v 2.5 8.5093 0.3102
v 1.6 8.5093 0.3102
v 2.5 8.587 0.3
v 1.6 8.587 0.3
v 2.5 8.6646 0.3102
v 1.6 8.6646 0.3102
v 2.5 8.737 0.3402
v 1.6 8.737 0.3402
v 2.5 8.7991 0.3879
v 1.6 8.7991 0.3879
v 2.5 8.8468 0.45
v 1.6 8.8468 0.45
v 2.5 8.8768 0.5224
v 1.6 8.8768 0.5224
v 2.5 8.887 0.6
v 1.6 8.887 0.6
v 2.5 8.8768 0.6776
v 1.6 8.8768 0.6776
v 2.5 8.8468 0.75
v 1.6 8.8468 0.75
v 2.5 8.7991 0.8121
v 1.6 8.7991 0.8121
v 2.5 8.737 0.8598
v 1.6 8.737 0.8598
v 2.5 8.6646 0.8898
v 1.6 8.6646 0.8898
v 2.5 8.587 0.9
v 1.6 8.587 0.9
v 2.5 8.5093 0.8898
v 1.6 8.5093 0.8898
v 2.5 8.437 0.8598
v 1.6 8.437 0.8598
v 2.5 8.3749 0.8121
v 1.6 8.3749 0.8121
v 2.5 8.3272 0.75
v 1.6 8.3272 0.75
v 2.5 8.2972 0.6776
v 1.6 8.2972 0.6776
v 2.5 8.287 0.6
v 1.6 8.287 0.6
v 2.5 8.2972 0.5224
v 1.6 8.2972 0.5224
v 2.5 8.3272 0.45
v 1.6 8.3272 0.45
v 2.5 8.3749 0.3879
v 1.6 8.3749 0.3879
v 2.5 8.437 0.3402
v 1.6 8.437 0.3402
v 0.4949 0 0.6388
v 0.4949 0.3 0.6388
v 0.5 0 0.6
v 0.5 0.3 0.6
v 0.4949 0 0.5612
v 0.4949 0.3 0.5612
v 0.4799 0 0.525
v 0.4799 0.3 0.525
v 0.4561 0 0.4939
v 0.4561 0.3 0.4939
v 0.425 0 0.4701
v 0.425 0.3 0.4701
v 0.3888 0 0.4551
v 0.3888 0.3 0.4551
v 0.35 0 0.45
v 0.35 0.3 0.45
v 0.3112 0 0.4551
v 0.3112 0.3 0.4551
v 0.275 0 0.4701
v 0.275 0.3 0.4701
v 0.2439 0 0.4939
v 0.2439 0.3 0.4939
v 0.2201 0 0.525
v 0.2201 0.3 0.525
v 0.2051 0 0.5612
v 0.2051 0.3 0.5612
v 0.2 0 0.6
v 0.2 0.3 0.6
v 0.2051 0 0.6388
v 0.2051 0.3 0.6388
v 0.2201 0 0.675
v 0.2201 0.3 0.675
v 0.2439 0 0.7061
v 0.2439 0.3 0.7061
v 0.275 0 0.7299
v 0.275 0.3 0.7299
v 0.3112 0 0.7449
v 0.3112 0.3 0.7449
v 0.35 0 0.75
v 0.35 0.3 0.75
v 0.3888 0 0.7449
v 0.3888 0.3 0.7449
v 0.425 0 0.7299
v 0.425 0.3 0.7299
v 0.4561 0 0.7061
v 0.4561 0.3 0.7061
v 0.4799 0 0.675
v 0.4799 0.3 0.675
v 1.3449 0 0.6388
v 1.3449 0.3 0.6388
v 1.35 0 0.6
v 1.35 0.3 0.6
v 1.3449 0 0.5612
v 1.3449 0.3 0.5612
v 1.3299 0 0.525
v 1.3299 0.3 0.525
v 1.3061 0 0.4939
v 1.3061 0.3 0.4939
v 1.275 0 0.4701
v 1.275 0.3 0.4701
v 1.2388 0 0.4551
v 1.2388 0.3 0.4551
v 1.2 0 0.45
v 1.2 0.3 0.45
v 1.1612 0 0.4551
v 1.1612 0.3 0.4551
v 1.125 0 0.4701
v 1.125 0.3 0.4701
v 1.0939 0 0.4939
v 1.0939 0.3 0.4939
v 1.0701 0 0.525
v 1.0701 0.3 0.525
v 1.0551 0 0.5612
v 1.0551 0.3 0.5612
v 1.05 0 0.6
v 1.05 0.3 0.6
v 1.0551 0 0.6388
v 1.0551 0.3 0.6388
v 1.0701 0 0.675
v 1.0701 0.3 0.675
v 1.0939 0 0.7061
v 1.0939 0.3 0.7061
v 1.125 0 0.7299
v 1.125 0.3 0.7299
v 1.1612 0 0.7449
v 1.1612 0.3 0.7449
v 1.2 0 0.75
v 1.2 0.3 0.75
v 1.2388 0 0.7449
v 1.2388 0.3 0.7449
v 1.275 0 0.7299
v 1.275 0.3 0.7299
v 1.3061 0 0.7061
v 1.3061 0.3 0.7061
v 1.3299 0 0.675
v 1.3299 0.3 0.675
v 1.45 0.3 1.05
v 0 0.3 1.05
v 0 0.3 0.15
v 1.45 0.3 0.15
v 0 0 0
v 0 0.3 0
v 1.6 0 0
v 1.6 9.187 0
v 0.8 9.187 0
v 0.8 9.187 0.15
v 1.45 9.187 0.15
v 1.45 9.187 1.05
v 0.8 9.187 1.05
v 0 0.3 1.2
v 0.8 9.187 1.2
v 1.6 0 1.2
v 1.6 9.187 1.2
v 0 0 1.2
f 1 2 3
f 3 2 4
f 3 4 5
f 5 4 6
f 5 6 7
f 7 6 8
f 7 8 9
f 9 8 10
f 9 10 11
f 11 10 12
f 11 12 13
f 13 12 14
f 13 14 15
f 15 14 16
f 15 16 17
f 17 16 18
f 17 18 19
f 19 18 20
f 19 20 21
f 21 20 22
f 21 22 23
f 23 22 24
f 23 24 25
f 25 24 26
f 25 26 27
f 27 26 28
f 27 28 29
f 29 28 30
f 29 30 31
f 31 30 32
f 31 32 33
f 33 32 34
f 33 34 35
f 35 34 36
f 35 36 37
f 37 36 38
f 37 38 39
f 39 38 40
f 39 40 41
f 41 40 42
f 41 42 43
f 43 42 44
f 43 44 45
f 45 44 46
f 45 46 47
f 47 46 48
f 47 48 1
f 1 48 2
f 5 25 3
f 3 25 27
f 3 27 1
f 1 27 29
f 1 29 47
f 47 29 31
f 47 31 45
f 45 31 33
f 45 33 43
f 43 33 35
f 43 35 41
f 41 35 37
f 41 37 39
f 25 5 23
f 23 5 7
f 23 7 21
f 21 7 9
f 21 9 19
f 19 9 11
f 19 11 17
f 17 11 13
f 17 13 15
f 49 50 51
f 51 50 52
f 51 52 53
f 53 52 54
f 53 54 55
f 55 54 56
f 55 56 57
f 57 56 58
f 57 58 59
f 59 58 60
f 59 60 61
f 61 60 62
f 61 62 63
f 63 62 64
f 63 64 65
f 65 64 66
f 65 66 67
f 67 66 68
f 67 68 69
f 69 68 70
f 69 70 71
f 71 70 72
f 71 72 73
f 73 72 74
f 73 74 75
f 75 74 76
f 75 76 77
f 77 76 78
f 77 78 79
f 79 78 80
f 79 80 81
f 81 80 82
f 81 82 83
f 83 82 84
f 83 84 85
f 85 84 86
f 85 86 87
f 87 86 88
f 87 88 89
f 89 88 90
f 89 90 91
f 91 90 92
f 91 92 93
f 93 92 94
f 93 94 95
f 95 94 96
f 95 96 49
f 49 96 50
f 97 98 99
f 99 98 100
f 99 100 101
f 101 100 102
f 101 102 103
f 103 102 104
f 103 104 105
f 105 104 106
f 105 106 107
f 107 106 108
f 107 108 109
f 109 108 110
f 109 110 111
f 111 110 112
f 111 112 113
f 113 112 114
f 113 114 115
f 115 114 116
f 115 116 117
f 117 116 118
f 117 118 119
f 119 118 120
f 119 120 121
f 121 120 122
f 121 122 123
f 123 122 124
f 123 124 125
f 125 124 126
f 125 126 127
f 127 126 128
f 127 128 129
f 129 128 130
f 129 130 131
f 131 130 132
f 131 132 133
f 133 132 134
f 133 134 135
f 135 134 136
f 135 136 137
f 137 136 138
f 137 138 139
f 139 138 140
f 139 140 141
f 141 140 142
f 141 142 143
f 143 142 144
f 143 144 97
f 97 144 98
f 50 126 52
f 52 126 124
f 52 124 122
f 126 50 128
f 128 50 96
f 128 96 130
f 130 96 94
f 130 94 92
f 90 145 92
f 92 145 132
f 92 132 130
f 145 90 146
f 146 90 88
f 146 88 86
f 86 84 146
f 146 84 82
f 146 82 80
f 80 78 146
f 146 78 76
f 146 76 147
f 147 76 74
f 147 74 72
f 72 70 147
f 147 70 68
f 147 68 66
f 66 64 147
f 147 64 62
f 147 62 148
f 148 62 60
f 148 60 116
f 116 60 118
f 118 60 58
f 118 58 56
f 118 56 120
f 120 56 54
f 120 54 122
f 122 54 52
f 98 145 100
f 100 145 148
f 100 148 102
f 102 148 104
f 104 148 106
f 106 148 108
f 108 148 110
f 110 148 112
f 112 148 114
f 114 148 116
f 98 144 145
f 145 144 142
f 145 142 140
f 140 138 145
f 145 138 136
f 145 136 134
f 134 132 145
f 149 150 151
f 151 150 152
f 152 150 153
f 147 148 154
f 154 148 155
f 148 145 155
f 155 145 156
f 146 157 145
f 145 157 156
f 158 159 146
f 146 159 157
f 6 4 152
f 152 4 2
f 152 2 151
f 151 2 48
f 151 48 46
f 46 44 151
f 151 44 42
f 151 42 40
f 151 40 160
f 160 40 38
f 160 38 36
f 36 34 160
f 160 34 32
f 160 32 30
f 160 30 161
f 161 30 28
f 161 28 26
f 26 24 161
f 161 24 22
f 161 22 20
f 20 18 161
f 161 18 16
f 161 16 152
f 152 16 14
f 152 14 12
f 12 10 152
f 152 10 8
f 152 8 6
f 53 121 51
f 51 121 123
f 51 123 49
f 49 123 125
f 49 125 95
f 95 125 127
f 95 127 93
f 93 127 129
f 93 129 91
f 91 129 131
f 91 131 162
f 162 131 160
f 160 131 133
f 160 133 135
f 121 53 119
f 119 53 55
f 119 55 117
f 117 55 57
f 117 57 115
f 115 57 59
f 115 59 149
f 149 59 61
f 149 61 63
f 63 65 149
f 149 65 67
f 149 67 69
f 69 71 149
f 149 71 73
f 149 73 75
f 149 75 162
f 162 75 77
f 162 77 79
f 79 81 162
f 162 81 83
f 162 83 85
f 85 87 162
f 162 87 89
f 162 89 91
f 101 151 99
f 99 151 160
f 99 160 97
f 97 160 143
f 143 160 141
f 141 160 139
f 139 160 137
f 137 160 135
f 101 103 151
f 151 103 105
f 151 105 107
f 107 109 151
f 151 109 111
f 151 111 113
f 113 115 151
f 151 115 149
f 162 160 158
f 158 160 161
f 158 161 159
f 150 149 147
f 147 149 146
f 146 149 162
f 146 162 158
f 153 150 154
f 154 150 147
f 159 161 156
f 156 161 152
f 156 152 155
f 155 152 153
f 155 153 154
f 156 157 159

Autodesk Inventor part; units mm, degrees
ref_plane "YZ Plane" through (0, 0, 0) normal (1, 0, 0) x (0, 1, 0)
ref_plane "XZ Plane" through (0, 0, 0) normal (0, 1, 0) x (-1, 0, 0)
ref_plane "XY Plane" through (0, 0, 0) normal (0, 0, 1) x (1, 0, 0)
sketch "Boceto1" plane through (0, 0, 0) normal (0, 0, 1) x (1, 0, 0)
  line L0 (0, 0) -> (1.6, 0)
  line L1 (1.6, 0) -> (1.6, 0.3)
  line L2 (0, 0.3) -> (0, 0)
  line L3 (1.6, 0.3) -> (1.6, 8.287)
  line L4 (1.6, 8.287) -> (2.5, 8.287)
  line L5 (2.5, 8.287) -> (2.5, 8.887)
  line L6 (2.5, 8.887) -> (1.6, 8.887)
  line L7 (1.6, 8.887) -> (1.6, 9.187)
  line L8 (1.6, 9.187) -> (0.8, 9.187)
  line L9 (0.8, 9.187) -> (0, 0.3)
  line L10 (1.6, 8.887) -> (1.6, 8.287)
extrude "Extrusión1" add sketch "Boceto1" along normal blind 0.15 contours L2 L9 L8 L7 L10 L3 L1 L0
sketch "Boceto2" plane through (1.6, 0, 0) normal (1, 0, 0) x (0, 0, -1)
  line L0 (0, 0.3) -> (0, 9.187)
  line L1 (-1.2, 9.187) -> (-1.2, 0.3)
  line L2 (-1.2, 0.3) -> (0, 0.3)
  line L3 (-1.05, 0.3) -> (-1.05, 9.187)
  line L4 (-0.15, 0.3) -> (-0.15, 9.187)
  line L5 (-1.2, 0) -> (0, 0)
  line L6 (-1.2, 0) -> (-1.2, 0.3)
  line L7 (0, 0) -> (0, 0.3)
  line L8 (0, 9.187) -> (-1.2, 9.187)
  point P0 (0, 0)
extrude "Extrusión2" add sketch "Boceto2" against normal blind 0.15 contours L7 L5 L6 L2 | L2 L3 L8 L4 | L2 L1 L8 L3
sketch "Boceto3" plane through (1.6, 0, 1.2) normal (0, 0, 1) x (1, 0, 0)
  line L0 (-1.6, 0) -> (0, 0)
  line L1 (0, 0) -> (0, 0.3)
  line L2 (-1.6, 0.3) -> (-1.6, 0)
  line L3 (0, 0.3) -> (0, 8.287)
  line L4 (0, 8.287) -> (0.9, 8.287)
  line L5 (0.9, 8.287) -> (0.9, 8.887)
  line L6 (0.9, 8.887) -> (0, 8.887)
  line L7 (0, 8.887) -> (0, 9.187)
  line L8 (0, 9.187) -> (-0.8, 9.187)
  line L9 (-0.8, 9.187) -> (-1.6, 0.3)
  line L10 (0, 8.887) -> (0, 8.287)
  line L11 (0, 0) -> (-0.15, 0) projected
  point P0 (-1.6, 0)
extrude "Extrusión3" add sketch "Boceto3" against normal blind 0.15 contours L2 L9 L8 L7 L10 L3 L1 L0
sketch "Boceto4" plane through (1.45, 0, 0) normal (-1, 0, 0) x (0, 0, 1)
  line L0 (1.2, 0.3) -> (1.2, 9.187)
  line L1 (0, 9.187) -> (0, 0.3)
  line L2 (0, 0.3) -> (1.2, 0.3)
  line L3 (0.15, 0.3) -> (0.15, 9.187)
  line L4 (1.05, 0.3) -> (1.05, 9.187)
  line L5 (0, 0) -> (1.2, 0)
  line L6 (0, 0) -> (0, 0.3)
  line L7 (1.2, 0) -> (1.2, 0.3)
  line L8 (1.2, 9.187) -> (0, 9.187)
  point P0 (0, 0)
extrude "Extrusión4" add sketch "Boceto4" along normal blind 1.45 contours L7 L5 L6 L2
sketch "Boceto5" plane through (1.45, 0.3, 1.05) normal (0, 1, 0) x (1, 0, 0)
  line L0 (-1.45, 1.05) -> (0.15, 1.05)
  line L1 (0.15, 1.05) -> (0.15, -0.15)
  line L2 (0.15, -0.15) -> (-1.45, -0.15)
  line L3 (-1.45, -0.15) -> (-1.45, 1.05)
  circle A0 centre (-1.1, 0.45) radius 0.15
  circle A1 centre (-0.25, 0.45) radius 0.15
  line L4 (0.15, 0.15) -> (1.05, 0.15)
  line L5 (1.05, 0.15) -> (1.05, 0.75)
  line L6 (1.05, 0.75) -> (0.15, 0.75)
  line L7 (0, 1.05) -> (0, -0.15)
  line L8 (0.15, 1.05) -> (0.15, -0.15) projected
  point P0 (-1.45, 1.05)
extrude "Extrusión5" cut sketch "Boceto5" against normal blind 1.45 contours A0 | A1
sketch "Boceto6" plane through (1.6, 0, 0) normal (1, 0, 0) x (0, 0, -1)
  line L0 (0, 0) -> (-1.2, 0) projected
  line L1 (0, 0) -> (0, 9.187) projected
  line L2 (0, 9.187) -> (-1.2, 9.187) projected
  line L3 (-1.2, 9.187) -> (-1.2, 0) projected
  line L4 (0, 0.3) -> (0, 9.187)
  line L5 (-1.2, 9.187) -> (-1.2, 0.3)
  line L6 (-1.2, 0) -> (0, 0)
  line L7 (-1.2, 0) -> (-1.2, 0.3)
  line L8 (0, 0) -> (0, 0.3)
  line L9 (0, 9.187) -> (-1.2, 9.187)
  circle A0 centre (-0.6, 8.587) radius 0.3
extrude "Extrusión6" add sketch "Boceto6" along normal blind 0.9 contours A0
properties part number "soporteAgarre"
